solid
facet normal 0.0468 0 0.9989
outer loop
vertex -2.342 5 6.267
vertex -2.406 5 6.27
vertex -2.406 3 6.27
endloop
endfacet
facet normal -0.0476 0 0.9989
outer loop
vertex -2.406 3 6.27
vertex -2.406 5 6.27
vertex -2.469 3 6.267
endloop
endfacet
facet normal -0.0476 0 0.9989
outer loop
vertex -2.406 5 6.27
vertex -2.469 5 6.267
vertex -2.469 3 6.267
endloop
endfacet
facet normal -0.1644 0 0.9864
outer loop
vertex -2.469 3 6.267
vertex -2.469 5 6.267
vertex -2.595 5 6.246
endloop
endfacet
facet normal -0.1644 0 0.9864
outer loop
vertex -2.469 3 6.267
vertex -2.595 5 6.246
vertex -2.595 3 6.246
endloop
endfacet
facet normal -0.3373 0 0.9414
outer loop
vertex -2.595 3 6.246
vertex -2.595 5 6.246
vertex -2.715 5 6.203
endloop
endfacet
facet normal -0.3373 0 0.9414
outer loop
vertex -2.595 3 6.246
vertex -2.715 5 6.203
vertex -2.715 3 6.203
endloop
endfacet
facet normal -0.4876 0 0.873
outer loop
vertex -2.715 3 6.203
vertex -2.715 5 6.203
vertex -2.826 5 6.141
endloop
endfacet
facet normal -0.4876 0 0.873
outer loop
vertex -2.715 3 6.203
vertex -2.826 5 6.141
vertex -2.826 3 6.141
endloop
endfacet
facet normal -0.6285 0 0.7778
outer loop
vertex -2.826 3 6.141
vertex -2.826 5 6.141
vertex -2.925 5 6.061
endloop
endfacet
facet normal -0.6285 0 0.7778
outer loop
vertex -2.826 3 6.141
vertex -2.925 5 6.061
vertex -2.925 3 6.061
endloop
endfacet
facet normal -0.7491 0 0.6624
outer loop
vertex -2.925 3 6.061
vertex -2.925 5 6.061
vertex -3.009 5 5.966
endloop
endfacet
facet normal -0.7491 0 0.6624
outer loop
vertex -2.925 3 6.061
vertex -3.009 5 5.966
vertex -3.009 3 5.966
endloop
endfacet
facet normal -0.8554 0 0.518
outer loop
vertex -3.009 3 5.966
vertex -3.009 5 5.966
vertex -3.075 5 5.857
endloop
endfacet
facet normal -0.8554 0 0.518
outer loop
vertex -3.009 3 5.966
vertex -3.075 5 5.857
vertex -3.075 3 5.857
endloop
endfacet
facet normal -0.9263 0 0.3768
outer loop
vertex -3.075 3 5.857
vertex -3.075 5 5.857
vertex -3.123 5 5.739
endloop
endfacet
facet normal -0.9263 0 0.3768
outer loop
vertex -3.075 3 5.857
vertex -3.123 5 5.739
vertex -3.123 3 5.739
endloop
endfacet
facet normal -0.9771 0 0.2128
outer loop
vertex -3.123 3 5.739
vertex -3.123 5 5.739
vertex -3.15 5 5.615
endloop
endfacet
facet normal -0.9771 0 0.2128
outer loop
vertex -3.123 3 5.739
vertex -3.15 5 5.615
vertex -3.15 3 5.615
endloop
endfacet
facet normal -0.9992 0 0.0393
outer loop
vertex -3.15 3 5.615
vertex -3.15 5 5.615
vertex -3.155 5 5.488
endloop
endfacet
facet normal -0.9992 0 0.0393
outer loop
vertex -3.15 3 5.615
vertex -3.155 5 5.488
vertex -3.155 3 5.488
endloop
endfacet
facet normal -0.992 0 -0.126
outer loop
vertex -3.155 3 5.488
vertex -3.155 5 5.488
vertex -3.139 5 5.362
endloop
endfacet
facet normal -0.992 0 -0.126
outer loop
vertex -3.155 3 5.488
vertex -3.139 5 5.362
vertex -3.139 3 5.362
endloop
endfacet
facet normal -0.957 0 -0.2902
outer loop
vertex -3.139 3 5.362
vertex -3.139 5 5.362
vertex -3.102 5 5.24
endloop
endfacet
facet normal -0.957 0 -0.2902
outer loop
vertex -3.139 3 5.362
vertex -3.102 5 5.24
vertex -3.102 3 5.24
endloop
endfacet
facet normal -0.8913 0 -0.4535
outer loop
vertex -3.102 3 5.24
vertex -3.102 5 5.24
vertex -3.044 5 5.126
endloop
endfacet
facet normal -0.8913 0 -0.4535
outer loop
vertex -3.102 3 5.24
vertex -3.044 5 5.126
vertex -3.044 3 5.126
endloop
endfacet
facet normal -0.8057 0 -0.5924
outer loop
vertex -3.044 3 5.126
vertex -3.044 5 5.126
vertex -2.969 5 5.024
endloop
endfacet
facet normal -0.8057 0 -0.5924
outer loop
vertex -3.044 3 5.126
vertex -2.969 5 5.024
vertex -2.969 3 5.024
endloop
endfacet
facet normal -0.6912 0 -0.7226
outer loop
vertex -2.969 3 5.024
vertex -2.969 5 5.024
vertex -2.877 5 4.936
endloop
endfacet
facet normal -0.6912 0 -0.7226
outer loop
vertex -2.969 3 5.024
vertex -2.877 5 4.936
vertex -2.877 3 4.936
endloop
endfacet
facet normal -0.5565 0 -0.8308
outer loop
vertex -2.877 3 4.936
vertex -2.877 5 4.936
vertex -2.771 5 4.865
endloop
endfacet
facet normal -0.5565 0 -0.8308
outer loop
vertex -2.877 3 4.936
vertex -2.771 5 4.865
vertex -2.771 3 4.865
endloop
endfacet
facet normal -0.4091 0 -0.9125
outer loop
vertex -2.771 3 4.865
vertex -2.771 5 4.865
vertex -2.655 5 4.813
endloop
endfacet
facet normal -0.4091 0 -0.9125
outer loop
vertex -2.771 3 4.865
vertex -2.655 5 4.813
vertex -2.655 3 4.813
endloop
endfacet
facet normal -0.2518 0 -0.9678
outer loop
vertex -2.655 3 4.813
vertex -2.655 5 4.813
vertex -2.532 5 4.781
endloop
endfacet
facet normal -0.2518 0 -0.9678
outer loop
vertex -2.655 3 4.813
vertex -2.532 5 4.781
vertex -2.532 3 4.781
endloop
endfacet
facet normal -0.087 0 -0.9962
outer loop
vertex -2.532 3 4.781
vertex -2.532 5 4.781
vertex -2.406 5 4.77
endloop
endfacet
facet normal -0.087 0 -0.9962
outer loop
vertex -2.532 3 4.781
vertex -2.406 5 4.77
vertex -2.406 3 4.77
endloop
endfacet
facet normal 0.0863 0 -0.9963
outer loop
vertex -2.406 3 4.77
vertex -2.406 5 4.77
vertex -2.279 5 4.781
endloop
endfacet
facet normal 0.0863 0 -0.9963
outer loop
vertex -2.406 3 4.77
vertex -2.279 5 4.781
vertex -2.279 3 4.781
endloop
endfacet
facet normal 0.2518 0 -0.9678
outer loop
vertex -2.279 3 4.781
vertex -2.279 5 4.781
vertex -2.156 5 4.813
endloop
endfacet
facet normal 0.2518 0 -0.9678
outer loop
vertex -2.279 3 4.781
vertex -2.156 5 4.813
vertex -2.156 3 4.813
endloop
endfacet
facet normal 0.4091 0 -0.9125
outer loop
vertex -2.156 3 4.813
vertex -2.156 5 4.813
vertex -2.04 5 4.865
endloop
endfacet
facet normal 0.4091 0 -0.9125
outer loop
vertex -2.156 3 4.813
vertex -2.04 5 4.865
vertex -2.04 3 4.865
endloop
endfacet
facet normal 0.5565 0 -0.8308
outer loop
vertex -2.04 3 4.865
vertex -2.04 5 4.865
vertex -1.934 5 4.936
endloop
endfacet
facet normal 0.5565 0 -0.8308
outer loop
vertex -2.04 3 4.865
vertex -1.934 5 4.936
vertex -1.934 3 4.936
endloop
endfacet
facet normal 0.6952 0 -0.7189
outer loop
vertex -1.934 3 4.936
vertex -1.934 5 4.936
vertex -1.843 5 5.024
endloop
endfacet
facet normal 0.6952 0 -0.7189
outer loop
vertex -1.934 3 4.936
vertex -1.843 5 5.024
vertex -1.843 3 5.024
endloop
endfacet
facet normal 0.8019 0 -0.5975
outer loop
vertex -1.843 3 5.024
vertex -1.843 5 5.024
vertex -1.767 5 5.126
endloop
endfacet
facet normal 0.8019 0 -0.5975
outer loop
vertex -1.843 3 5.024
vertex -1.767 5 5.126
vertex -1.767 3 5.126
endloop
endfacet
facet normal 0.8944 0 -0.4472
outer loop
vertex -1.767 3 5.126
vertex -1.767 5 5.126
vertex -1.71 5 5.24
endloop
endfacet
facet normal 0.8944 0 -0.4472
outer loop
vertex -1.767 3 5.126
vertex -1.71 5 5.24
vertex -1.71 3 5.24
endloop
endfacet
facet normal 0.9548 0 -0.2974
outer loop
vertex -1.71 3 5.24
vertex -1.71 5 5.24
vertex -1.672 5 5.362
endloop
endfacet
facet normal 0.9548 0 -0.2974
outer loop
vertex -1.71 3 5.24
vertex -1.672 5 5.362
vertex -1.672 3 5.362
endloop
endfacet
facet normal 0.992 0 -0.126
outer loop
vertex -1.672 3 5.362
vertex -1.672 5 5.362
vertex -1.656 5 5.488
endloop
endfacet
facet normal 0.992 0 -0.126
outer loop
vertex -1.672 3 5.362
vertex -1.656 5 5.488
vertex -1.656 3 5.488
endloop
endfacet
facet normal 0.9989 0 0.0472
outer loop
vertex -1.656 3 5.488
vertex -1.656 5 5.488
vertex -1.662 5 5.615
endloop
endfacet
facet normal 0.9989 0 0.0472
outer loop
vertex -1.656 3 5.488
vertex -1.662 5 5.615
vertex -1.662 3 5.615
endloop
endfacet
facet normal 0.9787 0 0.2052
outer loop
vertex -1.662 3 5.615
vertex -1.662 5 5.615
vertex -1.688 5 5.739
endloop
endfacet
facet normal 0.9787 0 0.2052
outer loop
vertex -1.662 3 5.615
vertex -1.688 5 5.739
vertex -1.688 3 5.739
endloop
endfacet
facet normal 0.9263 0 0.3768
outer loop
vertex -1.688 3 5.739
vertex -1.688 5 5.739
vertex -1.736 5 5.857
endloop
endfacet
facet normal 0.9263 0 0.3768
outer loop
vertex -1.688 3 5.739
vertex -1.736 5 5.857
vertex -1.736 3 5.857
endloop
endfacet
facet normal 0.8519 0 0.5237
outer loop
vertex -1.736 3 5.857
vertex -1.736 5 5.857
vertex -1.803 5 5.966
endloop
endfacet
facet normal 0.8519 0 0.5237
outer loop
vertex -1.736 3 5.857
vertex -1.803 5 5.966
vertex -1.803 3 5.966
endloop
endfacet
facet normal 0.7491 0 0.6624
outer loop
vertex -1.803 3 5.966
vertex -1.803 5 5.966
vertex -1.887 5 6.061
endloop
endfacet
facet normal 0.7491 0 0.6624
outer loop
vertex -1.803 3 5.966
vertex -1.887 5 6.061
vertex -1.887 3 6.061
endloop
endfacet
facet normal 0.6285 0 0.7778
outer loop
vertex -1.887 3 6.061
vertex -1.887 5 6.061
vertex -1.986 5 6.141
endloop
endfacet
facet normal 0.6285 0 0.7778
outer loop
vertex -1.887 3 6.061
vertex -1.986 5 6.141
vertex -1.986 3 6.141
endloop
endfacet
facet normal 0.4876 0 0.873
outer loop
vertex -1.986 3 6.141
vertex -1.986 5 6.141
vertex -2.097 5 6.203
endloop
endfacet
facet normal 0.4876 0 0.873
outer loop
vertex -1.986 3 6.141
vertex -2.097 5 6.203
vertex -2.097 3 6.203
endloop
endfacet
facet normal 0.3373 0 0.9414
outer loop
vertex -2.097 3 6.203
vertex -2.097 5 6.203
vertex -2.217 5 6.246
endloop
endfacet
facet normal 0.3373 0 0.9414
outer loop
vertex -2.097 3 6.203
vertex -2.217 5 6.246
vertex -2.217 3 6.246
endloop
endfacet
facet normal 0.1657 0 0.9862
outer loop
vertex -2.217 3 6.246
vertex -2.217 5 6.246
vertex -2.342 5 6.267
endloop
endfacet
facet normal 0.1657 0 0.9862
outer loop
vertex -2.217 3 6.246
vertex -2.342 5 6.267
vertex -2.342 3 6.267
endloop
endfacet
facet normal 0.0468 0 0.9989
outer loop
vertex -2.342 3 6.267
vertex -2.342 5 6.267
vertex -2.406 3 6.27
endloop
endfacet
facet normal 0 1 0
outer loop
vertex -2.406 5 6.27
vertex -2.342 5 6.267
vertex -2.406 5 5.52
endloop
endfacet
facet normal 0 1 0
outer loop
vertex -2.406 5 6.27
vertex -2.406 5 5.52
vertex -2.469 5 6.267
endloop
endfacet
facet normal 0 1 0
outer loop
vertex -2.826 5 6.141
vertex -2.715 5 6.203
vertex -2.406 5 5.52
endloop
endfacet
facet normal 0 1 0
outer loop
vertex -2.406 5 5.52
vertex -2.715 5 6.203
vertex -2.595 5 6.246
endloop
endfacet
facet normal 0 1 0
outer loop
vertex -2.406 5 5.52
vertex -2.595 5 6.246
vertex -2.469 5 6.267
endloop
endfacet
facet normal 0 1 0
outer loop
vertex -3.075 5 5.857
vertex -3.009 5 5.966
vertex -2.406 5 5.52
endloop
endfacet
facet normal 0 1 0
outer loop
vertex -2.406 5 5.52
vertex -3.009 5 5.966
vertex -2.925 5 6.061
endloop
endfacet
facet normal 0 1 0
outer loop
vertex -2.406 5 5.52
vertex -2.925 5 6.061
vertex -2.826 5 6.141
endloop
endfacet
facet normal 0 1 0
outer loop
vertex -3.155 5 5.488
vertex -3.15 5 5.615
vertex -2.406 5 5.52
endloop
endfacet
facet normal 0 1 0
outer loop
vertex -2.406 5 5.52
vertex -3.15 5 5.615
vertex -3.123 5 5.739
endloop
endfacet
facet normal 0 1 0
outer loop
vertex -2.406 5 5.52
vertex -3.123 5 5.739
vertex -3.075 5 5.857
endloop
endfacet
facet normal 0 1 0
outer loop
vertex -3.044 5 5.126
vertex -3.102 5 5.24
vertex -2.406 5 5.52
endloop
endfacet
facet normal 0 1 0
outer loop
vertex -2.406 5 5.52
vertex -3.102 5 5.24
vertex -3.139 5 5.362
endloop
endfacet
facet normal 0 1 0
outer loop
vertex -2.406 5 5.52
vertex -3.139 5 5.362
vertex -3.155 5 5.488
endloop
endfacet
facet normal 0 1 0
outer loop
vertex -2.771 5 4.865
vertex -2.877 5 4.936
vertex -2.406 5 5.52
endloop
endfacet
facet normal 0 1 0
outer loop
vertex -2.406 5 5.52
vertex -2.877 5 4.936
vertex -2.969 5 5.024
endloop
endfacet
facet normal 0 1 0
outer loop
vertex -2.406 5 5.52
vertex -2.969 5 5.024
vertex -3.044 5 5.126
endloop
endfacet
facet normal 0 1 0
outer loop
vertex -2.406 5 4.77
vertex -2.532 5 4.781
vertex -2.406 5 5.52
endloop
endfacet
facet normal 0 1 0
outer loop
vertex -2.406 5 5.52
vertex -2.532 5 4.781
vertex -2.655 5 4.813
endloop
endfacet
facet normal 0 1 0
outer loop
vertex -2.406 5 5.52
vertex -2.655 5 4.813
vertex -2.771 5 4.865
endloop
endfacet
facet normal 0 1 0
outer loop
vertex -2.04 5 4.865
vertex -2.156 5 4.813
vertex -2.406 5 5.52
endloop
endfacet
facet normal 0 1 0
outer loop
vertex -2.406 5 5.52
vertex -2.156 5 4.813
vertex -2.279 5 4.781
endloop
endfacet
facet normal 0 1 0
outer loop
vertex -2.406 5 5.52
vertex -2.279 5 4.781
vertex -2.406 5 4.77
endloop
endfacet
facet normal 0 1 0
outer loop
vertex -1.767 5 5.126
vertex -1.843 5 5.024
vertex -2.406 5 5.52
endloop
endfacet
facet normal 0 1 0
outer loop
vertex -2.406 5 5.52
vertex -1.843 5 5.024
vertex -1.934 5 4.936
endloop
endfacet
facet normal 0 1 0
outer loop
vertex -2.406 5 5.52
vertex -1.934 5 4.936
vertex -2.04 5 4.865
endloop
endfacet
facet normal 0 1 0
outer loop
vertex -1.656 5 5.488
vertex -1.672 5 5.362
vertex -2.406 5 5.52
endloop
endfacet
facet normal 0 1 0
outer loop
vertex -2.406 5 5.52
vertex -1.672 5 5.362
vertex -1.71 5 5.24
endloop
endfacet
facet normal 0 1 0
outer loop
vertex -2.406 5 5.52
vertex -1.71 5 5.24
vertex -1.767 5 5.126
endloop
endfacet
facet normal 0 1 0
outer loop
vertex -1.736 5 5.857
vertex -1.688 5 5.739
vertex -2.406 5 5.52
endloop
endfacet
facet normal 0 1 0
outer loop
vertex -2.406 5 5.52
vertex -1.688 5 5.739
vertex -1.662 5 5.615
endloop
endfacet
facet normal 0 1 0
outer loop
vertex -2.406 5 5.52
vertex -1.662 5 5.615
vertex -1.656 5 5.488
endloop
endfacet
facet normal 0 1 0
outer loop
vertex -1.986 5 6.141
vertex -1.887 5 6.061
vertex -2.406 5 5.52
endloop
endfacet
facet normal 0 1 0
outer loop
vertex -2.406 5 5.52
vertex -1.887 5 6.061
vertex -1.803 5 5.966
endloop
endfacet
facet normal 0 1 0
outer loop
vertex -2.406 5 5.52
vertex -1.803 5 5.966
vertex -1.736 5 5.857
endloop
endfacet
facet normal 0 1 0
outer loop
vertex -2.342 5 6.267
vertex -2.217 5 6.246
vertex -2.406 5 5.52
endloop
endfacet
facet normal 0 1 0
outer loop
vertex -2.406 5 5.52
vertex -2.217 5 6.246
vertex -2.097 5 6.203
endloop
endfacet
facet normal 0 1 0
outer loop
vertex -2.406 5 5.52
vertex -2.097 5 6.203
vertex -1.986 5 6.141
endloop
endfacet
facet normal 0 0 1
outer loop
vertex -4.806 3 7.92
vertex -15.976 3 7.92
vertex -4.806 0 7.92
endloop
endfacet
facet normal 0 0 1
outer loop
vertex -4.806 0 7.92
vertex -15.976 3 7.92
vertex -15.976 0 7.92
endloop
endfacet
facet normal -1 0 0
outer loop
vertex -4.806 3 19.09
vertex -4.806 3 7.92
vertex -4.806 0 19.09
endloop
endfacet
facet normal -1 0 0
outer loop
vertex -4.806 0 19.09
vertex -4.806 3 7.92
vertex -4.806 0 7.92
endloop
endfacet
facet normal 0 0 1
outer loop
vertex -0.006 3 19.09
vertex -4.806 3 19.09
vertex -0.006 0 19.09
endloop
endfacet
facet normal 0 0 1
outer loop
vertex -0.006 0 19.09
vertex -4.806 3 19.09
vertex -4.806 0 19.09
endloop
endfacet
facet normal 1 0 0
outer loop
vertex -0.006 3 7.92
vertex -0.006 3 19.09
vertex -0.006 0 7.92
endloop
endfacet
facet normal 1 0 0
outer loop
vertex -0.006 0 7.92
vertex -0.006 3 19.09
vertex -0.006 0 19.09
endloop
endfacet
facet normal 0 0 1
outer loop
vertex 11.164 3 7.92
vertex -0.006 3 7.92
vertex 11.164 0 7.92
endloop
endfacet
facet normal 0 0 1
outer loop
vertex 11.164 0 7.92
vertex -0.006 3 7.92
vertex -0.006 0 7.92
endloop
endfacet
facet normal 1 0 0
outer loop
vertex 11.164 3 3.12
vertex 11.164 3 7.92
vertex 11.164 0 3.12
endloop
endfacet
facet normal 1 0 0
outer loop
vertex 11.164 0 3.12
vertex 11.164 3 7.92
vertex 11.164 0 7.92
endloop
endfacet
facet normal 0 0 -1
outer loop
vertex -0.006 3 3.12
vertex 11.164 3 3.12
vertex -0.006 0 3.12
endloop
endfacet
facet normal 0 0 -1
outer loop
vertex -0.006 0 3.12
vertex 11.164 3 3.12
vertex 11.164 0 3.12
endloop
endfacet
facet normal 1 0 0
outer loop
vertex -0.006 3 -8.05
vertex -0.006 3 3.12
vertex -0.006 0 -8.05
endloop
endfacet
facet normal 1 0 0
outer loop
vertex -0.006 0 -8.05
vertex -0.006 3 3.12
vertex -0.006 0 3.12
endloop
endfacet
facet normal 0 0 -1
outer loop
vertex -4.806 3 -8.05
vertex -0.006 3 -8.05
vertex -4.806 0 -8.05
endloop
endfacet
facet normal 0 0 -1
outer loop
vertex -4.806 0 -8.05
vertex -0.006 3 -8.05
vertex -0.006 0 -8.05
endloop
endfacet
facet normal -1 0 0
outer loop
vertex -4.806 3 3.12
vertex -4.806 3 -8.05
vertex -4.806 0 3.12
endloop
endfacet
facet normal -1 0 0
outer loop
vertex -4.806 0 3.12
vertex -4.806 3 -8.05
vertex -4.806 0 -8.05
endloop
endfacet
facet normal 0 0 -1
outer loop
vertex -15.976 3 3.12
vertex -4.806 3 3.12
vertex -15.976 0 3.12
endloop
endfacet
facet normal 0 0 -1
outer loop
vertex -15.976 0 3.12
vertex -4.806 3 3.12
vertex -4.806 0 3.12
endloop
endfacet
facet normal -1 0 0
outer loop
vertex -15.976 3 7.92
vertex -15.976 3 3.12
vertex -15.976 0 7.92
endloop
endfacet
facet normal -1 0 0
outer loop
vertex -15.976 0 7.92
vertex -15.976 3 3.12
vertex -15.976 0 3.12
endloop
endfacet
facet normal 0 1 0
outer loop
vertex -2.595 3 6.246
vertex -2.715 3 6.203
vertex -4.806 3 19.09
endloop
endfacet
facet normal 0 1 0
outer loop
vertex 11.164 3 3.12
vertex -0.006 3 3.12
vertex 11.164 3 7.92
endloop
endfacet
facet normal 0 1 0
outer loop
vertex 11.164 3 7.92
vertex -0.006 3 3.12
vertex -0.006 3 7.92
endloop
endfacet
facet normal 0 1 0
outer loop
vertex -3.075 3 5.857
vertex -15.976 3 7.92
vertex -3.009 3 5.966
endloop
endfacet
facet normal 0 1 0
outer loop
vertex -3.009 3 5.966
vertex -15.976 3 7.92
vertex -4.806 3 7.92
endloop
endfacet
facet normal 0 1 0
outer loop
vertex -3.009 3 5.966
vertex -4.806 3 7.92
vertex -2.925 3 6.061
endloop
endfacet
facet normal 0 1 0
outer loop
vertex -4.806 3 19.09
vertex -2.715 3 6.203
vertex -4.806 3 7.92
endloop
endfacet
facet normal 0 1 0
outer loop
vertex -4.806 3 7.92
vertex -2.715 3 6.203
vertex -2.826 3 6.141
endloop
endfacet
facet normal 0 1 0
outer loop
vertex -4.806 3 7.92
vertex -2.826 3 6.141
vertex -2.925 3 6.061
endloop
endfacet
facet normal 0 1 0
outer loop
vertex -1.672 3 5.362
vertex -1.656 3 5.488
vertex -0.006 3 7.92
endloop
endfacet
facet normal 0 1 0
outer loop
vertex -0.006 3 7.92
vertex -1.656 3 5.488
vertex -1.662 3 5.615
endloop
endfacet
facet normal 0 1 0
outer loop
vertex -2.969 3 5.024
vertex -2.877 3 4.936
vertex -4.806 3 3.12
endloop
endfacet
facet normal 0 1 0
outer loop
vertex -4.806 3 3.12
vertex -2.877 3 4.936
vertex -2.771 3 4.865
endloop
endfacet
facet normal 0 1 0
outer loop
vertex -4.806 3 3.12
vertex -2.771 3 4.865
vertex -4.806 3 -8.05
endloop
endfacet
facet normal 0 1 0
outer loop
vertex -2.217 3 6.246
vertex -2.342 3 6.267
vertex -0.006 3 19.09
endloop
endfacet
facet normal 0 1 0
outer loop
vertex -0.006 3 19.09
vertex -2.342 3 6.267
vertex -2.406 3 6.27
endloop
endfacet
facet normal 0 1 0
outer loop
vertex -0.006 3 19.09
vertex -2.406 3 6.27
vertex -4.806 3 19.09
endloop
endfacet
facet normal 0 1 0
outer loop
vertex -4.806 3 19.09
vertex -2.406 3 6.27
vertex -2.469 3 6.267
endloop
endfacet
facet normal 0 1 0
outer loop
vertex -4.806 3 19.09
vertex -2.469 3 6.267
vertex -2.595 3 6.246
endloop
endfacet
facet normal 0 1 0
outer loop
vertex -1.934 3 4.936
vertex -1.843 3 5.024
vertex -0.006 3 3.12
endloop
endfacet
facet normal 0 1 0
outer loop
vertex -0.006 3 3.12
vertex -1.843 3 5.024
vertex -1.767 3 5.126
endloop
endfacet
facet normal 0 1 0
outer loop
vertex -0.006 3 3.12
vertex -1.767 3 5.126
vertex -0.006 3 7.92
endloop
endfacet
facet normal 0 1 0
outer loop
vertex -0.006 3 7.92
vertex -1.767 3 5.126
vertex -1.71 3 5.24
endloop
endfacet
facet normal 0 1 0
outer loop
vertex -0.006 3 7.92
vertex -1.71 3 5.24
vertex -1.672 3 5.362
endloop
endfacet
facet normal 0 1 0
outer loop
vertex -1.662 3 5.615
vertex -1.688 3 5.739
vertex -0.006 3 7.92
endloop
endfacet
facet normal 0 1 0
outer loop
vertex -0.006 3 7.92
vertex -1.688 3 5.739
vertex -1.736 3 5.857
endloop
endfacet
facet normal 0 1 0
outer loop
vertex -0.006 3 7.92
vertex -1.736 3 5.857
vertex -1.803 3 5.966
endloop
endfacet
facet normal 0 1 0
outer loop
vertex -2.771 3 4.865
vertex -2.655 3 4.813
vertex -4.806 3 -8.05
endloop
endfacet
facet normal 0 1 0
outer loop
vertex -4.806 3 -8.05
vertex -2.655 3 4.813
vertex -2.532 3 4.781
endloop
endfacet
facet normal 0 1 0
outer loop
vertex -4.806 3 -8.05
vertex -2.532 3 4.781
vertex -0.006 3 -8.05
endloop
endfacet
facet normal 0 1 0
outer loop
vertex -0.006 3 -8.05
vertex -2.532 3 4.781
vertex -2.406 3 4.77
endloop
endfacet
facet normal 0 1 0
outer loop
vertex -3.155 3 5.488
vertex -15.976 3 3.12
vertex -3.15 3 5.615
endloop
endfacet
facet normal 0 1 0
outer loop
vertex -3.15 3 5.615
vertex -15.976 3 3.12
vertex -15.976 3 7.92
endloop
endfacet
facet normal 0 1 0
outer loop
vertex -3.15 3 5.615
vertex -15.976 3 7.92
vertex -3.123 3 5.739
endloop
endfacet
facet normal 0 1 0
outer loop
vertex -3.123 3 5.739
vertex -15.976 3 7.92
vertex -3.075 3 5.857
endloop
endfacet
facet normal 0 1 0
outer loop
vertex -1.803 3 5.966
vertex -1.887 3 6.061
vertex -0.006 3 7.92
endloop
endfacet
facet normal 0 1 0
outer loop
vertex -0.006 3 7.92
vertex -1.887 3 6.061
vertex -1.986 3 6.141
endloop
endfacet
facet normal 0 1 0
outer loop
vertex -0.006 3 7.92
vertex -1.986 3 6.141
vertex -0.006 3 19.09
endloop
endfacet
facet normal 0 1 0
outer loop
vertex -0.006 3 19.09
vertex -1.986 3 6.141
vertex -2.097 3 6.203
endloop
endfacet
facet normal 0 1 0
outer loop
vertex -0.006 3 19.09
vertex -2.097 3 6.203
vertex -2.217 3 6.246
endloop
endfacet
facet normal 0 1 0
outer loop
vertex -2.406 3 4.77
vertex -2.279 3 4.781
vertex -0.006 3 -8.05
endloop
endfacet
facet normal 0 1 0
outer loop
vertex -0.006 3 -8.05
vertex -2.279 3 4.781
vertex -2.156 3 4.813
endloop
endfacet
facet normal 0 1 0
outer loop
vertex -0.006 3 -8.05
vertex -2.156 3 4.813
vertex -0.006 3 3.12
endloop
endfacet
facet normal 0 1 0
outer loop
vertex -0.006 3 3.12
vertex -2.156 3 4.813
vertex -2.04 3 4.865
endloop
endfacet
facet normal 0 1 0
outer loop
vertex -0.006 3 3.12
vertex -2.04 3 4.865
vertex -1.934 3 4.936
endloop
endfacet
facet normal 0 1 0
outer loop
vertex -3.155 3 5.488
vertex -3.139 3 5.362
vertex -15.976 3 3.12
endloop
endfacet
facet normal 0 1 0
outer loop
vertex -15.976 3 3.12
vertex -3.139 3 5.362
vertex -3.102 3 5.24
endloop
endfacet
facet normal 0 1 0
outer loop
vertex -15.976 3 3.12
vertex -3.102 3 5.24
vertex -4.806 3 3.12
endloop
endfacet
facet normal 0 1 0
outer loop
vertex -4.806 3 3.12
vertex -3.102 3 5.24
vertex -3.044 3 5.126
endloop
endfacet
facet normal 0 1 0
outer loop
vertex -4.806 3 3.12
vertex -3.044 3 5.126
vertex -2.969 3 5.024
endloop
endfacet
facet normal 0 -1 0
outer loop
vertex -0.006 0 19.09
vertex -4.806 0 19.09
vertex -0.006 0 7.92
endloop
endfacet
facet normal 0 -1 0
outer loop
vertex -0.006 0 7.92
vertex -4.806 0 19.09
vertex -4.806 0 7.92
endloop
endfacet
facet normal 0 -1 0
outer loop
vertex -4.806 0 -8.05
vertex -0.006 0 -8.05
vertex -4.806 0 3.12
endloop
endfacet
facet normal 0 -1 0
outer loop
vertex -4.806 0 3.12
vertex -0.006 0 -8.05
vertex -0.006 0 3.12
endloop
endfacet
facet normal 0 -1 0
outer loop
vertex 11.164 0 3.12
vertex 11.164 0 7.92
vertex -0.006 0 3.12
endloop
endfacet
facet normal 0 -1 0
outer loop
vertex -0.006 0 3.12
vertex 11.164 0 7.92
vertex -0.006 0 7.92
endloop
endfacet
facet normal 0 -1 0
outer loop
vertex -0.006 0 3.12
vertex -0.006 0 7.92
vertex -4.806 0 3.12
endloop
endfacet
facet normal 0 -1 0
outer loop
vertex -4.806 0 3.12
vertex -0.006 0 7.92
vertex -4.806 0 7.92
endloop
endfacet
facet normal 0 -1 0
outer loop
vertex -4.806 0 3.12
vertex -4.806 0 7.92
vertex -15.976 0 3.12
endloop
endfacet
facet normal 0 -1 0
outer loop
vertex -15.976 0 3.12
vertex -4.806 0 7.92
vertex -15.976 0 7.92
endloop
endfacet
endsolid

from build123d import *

# Parameters (mm, degrees)
SKETCH1_R           = 0.75
BOSS_EXTRUDE1_DEPTH = 5
SKETCH1_3_R         = 0.75
BOSS_EXTRUDE2_DEPTH = 3


with BuildPart() as part:
    # Sketch1 → Boss-Extrude1 (new body)
    with BuildSketch(Plane(origin=(0, 0, 0), x_dir=(1, 0, 0), z_dir=(0, 1, 0))):
        with Locations((-2.405620155, -5.519728682)):
            Circle(SKETCH1_R)
    extrude(amount=BOSS_EXTRUDE1_DEPTH)

    # Sketch1<3> → Boss-Extrude2 (add)
    with BuildSketch(Plane(origin=(0, 0, 0), x_dir=(1, 0, 0), z_dir=(0, 1, 0))):
        Polygon((-0.005620155, 8.050271318), (-4.805620155, 8.050271318), (-4.805620155, -3.119728682), (-15.975620155, -3.119728682), (-15.975620155, -7.919728682), (-4.805620155, -7.919728682), (-4.805620155, -19.089728682), (-0.005620155, -19.089728682), (-0.005620155, -7.919728682), (11.164379845, -7.919728682), (11.164379845, -3.119728682), (-0.005620155, -3.119728682), align=None)
        with Locations((-2.405620155, -5.519728682)):
            Circle(SKETCH1_3_R, mode=Mode.SUBTRACT)
    extrude(amount=BOSS_EXTRUDE2_DEPTH)


solid = part.part
